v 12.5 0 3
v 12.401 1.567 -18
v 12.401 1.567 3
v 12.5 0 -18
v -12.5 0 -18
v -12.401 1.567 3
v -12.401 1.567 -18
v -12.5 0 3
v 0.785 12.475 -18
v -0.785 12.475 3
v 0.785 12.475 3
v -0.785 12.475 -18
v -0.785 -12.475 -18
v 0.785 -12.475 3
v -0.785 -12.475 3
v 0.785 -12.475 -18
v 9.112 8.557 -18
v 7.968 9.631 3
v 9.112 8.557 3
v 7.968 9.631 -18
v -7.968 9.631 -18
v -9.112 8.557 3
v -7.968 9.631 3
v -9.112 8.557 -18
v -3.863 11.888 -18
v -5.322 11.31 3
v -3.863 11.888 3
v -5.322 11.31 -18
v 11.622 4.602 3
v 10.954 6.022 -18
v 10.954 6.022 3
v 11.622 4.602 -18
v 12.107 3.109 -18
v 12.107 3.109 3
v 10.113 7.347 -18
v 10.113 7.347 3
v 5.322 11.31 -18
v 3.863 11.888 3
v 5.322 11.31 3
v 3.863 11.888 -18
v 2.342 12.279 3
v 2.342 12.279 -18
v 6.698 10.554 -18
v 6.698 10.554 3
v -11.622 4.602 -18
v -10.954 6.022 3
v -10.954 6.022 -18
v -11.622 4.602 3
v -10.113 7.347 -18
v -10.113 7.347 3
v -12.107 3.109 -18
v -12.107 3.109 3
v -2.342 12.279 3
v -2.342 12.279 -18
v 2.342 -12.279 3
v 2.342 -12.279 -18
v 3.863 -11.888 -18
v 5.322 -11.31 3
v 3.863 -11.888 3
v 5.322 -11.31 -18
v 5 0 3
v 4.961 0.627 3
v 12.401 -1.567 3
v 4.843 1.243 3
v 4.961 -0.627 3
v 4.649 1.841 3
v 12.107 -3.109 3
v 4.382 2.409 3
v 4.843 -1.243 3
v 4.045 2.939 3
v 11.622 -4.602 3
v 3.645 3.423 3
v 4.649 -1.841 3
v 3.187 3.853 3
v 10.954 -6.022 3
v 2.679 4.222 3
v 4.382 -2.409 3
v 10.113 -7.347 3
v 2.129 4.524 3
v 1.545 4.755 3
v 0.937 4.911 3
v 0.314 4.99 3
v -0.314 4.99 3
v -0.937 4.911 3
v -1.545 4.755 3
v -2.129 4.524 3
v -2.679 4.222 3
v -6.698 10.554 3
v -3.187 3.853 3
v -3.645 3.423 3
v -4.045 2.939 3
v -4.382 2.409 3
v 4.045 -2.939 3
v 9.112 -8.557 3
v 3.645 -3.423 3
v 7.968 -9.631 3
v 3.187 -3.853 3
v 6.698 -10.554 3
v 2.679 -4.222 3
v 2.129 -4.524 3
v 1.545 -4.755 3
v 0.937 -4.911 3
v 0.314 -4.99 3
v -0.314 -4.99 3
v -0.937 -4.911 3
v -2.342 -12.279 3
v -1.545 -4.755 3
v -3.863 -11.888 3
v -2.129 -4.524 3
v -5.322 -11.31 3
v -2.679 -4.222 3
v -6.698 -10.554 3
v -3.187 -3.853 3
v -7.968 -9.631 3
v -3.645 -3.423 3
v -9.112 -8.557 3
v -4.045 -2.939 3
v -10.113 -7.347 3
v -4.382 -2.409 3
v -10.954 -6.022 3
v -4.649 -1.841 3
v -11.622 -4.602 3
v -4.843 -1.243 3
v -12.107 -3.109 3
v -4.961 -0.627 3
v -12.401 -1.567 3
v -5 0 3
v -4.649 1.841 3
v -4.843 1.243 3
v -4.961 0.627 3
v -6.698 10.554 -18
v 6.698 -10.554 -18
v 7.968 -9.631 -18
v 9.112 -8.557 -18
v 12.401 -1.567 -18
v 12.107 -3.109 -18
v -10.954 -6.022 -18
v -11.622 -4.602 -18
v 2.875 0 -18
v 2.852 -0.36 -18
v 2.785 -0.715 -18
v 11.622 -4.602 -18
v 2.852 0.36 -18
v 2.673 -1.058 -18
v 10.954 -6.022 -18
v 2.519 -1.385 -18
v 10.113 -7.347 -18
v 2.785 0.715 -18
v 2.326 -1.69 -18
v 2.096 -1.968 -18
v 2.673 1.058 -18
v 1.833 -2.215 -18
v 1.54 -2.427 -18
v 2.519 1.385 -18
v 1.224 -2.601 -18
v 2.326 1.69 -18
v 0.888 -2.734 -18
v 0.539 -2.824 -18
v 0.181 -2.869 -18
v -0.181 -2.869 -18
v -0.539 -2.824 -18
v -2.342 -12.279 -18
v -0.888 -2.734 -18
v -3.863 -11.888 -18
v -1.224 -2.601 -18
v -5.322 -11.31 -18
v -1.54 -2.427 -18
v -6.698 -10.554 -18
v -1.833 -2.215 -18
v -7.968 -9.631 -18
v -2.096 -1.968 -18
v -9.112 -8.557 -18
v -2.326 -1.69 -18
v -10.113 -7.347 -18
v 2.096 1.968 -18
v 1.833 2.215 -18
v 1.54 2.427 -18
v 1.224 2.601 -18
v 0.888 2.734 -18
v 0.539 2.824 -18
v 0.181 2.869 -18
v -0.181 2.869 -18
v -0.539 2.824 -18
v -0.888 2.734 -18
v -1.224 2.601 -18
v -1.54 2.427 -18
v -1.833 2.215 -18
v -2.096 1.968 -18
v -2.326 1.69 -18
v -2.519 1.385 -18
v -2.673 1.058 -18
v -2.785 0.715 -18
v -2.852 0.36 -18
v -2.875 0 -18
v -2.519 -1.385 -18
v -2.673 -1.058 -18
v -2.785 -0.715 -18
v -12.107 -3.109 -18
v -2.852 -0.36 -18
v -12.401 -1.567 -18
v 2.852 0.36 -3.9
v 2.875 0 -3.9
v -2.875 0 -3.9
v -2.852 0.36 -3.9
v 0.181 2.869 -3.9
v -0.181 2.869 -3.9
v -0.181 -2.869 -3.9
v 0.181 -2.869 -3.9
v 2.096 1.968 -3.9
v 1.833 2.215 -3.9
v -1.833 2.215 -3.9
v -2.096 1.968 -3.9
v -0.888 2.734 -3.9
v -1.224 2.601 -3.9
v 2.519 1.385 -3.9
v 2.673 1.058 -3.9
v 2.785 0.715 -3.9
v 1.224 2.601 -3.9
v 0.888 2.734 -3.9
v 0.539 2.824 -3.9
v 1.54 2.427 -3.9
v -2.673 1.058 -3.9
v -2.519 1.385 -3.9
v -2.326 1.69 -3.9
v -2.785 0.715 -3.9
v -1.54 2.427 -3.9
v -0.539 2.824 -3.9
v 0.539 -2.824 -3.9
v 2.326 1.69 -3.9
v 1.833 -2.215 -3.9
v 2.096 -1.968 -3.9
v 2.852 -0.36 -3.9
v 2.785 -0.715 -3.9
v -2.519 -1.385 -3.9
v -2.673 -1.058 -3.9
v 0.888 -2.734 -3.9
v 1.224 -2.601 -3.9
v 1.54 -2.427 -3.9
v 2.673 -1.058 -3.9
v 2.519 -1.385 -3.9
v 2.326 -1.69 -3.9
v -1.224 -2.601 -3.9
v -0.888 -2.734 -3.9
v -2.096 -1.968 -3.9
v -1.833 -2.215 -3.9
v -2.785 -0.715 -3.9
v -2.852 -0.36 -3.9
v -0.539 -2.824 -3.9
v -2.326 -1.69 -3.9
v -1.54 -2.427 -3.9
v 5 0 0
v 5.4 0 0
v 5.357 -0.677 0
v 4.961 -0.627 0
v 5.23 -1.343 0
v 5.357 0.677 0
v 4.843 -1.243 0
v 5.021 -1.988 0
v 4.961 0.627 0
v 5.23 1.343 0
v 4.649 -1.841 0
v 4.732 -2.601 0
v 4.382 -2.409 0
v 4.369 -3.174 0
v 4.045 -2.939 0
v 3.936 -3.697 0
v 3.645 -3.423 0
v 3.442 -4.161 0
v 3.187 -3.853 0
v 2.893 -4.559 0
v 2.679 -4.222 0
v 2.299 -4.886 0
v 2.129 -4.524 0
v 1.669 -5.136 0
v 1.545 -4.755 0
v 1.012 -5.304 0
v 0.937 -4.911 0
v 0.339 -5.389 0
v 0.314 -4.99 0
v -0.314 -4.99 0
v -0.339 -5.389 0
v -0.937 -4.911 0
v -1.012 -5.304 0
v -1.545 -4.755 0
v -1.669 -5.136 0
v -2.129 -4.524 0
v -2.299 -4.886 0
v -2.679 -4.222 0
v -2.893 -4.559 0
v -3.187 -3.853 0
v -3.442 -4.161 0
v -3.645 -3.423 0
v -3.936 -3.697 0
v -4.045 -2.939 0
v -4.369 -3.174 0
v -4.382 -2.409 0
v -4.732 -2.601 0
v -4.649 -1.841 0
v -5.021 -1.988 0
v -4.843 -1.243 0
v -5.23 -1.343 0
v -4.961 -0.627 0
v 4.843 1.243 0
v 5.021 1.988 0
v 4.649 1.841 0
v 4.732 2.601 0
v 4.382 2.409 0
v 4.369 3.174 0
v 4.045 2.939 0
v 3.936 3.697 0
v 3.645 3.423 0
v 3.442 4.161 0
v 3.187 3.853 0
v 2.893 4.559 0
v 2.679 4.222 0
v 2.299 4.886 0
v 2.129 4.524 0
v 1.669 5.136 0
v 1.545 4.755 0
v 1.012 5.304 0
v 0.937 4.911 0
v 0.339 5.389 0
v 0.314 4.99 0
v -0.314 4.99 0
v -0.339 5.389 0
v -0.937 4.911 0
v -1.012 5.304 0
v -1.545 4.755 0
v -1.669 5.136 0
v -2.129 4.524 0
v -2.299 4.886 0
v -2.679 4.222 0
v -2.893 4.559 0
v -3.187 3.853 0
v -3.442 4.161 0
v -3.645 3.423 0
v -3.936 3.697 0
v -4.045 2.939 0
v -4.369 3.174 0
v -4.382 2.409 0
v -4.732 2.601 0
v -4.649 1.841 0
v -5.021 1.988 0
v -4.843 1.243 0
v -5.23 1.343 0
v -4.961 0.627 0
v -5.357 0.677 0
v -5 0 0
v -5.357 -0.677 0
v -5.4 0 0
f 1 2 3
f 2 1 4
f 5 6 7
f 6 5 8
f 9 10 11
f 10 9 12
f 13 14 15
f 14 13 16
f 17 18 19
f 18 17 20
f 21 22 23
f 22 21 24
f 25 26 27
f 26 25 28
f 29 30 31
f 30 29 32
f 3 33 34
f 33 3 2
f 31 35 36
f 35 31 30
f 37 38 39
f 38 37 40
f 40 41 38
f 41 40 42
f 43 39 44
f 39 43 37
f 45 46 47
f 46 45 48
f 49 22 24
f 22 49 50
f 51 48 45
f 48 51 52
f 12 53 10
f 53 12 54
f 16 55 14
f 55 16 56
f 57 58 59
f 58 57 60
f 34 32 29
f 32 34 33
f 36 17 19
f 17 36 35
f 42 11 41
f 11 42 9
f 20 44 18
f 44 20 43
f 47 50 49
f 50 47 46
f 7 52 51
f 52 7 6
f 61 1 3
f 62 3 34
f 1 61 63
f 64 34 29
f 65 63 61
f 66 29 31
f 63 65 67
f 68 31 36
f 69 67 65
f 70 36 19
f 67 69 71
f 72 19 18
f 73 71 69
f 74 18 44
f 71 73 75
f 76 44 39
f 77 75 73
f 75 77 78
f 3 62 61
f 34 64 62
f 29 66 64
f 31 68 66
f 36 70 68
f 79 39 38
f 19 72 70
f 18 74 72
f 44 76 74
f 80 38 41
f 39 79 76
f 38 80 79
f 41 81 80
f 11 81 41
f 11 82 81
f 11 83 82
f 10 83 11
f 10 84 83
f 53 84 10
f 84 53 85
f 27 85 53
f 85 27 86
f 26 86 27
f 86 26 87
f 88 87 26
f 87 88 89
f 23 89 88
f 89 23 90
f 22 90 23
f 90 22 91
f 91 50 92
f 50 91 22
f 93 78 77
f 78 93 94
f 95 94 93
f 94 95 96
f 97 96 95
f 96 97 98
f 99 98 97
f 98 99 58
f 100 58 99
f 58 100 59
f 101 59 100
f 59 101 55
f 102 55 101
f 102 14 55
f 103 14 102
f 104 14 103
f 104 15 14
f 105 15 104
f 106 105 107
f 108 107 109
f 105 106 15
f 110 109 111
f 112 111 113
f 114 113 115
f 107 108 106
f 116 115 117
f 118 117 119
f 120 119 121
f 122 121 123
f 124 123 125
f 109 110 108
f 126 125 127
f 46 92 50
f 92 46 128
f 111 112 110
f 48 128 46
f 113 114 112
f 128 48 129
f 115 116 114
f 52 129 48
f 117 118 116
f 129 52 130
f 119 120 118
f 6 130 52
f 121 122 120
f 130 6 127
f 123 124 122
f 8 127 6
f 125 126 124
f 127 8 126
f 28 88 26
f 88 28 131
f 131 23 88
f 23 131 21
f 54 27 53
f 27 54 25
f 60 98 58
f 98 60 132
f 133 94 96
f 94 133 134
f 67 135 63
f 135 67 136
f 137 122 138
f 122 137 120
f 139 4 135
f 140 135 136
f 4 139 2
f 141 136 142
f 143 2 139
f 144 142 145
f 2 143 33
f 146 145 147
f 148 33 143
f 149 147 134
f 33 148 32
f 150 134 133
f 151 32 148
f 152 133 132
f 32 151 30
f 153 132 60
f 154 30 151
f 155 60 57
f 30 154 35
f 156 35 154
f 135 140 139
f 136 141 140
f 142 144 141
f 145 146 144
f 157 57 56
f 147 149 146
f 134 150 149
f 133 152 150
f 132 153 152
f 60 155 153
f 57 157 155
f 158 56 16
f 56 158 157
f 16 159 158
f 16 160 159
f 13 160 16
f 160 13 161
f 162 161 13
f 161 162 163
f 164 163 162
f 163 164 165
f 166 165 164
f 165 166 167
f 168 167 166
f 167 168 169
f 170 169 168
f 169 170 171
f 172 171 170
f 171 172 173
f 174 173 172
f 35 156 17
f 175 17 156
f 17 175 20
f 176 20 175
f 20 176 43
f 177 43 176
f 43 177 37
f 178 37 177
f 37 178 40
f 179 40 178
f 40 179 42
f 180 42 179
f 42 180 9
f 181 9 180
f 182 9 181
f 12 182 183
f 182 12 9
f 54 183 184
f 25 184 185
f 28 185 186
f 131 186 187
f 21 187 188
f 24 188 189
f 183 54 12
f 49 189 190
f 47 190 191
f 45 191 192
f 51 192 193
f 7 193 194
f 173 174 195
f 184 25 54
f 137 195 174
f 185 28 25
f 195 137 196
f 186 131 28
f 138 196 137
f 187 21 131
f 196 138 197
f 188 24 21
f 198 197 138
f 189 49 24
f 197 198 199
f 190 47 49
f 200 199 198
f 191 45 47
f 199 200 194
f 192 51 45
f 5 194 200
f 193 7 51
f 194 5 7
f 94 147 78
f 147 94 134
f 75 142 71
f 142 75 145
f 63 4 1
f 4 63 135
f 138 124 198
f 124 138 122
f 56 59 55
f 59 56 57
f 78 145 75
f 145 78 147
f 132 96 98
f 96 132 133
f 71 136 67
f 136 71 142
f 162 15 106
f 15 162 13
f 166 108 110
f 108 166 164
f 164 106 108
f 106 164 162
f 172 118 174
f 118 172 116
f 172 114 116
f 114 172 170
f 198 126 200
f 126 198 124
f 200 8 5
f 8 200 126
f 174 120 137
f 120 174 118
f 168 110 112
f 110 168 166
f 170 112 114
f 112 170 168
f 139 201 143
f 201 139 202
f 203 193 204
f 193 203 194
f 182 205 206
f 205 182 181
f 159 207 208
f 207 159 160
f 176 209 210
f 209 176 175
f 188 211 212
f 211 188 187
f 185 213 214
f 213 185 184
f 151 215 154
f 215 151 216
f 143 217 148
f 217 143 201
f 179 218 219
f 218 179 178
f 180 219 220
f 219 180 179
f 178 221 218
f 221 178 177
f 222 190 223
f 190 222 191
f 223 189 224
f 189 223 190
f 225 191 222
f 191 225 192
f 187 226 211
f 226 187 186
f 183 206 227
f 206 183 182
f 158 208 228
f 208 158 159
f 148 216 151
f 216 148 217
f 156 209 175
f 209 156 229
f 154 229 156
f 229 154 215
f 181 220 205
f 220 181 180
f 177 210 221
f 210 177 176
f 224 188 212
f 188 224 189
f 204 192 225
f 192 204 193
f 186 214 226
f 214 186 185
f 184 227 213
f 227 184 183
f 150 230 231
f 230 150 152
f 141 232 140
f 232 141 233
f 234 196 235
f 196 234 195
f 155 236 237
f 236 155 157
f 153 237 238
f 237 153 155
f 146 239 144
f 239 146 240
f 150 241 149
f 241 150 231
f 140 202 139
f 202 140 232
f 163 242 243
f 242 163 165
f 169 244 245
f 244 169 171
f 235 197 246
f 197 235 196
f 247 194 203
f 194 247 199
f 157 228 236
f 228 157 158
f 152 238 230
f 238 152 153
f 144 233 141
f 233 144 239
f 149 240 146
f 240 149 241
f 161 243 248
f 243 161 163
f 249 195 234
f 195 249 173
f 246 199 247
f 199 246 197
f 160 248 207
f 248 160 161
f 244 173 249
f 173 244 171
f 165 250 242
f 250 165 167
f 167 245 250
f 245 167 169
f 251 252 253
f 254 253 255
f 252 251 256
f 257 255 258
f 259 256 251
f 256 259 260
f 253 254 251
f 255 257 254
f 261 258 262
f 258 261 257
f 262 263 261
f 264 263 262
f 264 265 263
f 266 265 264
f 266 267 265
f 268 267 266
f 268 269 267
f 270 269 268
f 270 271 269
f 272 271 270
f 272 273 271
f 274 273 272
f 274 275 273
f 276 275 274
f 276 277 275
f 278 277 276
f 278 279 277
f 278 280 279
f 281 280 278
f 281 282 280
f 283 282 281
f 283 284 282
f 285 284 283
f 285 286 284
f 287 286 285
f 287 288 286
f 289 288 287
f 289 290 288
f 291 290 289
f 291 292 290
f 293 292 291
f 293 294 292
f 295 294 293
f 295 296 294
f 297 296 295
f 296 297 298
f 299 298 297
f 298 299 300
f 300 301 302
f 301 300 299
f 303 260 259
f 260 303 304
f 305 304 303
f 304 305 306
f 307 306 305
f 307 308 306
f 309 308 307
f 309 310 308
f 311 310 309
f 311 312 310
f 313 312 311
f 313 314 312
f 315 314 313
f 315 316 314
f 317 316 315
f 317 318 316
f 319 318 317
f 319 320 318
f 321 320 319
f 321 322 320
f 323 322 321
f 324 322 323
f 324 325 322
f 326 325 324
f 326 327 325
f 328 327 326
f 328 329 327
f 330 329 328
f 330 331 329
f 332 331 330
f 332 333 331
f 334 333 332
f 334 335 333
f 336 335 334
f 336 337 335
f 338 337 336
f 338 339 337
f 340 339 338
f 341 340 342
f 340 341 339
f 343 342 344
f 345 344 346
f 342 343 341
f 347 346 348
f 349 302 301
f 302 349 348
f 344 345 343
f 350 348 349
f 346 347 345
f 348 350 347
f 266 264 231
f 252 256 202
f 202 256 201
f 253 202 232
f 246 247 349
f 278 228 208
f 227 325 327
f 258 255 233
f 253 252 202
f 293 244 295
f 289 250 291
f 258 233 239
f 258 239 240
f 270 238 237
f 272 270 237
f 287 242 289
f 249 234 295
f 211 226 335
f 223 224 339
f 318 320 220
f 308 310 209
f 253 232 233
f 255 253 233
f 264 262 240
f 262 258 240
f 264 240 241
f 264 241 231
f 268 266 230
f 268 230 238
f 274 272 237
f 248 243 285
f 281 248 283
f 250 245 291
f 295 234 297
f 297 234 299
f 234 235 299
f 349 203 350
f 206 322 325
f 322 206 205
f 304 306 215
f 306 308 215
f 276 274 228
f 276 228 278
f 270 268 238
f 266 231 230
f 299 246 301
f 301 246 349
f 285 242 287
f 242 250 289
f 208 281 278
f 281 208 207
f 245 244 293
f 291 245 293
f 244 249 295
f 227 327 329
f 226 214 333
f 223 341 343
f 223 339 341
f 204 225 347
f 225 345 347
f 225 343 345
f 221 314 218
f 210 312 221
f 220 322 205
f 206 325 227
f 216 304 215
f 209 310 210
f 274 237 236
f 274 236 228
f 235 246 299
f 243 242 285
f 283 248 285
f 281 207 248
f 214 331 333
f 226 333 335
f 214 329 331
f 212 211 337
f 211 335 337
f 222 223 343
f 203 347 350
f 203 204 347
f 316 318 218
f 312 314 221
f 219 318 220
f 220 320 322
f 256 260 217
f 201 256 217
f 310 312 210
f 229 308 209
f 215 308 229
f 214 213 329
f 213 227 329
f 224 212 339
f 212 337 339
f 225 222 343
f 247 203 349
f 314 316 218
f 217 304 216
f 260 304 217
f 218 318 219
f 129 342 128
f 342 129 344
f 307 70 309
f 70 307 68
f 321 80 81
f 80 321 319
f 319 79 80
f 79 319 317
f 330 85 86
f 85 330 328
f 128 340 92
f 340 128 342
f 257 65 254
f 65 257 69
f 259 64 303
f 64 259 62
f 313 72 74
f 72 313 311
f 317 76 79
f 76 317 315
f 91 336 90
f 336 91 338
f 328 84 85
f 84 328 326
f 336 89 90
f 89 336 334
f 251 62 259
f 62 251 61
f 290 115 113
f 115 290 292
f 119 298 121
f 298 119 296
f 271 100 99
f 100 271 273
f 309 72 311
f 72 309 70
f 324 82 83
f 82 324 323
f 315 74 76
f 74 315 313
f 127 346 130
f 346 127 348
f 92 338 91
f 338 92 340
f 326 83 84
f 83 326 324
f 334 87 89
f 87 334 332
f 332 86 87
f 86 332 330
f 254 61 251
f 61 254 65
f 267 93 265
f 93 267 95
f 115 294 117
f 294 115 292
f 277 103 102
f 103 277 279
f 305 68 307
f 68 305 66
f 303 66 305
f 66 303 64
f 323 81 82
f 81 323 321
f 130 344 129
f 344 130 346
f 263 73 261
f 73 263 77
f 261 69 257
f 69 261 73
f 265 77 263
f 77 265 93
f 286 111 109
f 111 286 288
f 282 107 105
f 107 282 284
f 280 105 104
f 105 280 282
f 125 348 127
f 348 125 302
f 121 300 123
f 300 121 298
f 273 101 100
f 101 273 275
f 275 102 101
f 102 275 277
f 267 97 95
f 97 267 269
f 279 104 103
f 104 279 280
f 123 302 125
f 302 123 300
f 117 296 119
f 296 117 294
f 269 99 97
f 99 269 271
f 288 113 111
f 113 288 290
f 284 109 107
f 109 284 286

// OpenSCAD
$fn = 50;

difference() {
	union() {
		translate(v = [0, 0, -18.0]) {
			cylinder(h = 21, r = 12.5);
		}
		#translate(v = [0, 0, -21.0]) {
			cylinder(h = 21, r = 2.875);
		}
	}
	union() {
		translate(v = [0, 0, 0]) {
			rotate(a = [0, 0, 0]) {
				difference() {
					union() {
						translate(v = [0, 0, -21.0]) {
							cylinder(h = 21, r = 2.6);
						}
						translate(v = [0, 0, -3.9]) {
							cylinder(h = 3.9, r1 = 2.875, r2 = 5.4);
						}
						translate(v = [0, 0, -21.0]) {
							cylinder(h = 21, r = 2.875);
						}
						translate(v = [0, 0, -21.0]) {
							cylinder(h = 21, r = 2.6);
						}
					}
					union();
				}
			}
		}
		#cylinder(h = 3, r = 5.0);
	}
}
